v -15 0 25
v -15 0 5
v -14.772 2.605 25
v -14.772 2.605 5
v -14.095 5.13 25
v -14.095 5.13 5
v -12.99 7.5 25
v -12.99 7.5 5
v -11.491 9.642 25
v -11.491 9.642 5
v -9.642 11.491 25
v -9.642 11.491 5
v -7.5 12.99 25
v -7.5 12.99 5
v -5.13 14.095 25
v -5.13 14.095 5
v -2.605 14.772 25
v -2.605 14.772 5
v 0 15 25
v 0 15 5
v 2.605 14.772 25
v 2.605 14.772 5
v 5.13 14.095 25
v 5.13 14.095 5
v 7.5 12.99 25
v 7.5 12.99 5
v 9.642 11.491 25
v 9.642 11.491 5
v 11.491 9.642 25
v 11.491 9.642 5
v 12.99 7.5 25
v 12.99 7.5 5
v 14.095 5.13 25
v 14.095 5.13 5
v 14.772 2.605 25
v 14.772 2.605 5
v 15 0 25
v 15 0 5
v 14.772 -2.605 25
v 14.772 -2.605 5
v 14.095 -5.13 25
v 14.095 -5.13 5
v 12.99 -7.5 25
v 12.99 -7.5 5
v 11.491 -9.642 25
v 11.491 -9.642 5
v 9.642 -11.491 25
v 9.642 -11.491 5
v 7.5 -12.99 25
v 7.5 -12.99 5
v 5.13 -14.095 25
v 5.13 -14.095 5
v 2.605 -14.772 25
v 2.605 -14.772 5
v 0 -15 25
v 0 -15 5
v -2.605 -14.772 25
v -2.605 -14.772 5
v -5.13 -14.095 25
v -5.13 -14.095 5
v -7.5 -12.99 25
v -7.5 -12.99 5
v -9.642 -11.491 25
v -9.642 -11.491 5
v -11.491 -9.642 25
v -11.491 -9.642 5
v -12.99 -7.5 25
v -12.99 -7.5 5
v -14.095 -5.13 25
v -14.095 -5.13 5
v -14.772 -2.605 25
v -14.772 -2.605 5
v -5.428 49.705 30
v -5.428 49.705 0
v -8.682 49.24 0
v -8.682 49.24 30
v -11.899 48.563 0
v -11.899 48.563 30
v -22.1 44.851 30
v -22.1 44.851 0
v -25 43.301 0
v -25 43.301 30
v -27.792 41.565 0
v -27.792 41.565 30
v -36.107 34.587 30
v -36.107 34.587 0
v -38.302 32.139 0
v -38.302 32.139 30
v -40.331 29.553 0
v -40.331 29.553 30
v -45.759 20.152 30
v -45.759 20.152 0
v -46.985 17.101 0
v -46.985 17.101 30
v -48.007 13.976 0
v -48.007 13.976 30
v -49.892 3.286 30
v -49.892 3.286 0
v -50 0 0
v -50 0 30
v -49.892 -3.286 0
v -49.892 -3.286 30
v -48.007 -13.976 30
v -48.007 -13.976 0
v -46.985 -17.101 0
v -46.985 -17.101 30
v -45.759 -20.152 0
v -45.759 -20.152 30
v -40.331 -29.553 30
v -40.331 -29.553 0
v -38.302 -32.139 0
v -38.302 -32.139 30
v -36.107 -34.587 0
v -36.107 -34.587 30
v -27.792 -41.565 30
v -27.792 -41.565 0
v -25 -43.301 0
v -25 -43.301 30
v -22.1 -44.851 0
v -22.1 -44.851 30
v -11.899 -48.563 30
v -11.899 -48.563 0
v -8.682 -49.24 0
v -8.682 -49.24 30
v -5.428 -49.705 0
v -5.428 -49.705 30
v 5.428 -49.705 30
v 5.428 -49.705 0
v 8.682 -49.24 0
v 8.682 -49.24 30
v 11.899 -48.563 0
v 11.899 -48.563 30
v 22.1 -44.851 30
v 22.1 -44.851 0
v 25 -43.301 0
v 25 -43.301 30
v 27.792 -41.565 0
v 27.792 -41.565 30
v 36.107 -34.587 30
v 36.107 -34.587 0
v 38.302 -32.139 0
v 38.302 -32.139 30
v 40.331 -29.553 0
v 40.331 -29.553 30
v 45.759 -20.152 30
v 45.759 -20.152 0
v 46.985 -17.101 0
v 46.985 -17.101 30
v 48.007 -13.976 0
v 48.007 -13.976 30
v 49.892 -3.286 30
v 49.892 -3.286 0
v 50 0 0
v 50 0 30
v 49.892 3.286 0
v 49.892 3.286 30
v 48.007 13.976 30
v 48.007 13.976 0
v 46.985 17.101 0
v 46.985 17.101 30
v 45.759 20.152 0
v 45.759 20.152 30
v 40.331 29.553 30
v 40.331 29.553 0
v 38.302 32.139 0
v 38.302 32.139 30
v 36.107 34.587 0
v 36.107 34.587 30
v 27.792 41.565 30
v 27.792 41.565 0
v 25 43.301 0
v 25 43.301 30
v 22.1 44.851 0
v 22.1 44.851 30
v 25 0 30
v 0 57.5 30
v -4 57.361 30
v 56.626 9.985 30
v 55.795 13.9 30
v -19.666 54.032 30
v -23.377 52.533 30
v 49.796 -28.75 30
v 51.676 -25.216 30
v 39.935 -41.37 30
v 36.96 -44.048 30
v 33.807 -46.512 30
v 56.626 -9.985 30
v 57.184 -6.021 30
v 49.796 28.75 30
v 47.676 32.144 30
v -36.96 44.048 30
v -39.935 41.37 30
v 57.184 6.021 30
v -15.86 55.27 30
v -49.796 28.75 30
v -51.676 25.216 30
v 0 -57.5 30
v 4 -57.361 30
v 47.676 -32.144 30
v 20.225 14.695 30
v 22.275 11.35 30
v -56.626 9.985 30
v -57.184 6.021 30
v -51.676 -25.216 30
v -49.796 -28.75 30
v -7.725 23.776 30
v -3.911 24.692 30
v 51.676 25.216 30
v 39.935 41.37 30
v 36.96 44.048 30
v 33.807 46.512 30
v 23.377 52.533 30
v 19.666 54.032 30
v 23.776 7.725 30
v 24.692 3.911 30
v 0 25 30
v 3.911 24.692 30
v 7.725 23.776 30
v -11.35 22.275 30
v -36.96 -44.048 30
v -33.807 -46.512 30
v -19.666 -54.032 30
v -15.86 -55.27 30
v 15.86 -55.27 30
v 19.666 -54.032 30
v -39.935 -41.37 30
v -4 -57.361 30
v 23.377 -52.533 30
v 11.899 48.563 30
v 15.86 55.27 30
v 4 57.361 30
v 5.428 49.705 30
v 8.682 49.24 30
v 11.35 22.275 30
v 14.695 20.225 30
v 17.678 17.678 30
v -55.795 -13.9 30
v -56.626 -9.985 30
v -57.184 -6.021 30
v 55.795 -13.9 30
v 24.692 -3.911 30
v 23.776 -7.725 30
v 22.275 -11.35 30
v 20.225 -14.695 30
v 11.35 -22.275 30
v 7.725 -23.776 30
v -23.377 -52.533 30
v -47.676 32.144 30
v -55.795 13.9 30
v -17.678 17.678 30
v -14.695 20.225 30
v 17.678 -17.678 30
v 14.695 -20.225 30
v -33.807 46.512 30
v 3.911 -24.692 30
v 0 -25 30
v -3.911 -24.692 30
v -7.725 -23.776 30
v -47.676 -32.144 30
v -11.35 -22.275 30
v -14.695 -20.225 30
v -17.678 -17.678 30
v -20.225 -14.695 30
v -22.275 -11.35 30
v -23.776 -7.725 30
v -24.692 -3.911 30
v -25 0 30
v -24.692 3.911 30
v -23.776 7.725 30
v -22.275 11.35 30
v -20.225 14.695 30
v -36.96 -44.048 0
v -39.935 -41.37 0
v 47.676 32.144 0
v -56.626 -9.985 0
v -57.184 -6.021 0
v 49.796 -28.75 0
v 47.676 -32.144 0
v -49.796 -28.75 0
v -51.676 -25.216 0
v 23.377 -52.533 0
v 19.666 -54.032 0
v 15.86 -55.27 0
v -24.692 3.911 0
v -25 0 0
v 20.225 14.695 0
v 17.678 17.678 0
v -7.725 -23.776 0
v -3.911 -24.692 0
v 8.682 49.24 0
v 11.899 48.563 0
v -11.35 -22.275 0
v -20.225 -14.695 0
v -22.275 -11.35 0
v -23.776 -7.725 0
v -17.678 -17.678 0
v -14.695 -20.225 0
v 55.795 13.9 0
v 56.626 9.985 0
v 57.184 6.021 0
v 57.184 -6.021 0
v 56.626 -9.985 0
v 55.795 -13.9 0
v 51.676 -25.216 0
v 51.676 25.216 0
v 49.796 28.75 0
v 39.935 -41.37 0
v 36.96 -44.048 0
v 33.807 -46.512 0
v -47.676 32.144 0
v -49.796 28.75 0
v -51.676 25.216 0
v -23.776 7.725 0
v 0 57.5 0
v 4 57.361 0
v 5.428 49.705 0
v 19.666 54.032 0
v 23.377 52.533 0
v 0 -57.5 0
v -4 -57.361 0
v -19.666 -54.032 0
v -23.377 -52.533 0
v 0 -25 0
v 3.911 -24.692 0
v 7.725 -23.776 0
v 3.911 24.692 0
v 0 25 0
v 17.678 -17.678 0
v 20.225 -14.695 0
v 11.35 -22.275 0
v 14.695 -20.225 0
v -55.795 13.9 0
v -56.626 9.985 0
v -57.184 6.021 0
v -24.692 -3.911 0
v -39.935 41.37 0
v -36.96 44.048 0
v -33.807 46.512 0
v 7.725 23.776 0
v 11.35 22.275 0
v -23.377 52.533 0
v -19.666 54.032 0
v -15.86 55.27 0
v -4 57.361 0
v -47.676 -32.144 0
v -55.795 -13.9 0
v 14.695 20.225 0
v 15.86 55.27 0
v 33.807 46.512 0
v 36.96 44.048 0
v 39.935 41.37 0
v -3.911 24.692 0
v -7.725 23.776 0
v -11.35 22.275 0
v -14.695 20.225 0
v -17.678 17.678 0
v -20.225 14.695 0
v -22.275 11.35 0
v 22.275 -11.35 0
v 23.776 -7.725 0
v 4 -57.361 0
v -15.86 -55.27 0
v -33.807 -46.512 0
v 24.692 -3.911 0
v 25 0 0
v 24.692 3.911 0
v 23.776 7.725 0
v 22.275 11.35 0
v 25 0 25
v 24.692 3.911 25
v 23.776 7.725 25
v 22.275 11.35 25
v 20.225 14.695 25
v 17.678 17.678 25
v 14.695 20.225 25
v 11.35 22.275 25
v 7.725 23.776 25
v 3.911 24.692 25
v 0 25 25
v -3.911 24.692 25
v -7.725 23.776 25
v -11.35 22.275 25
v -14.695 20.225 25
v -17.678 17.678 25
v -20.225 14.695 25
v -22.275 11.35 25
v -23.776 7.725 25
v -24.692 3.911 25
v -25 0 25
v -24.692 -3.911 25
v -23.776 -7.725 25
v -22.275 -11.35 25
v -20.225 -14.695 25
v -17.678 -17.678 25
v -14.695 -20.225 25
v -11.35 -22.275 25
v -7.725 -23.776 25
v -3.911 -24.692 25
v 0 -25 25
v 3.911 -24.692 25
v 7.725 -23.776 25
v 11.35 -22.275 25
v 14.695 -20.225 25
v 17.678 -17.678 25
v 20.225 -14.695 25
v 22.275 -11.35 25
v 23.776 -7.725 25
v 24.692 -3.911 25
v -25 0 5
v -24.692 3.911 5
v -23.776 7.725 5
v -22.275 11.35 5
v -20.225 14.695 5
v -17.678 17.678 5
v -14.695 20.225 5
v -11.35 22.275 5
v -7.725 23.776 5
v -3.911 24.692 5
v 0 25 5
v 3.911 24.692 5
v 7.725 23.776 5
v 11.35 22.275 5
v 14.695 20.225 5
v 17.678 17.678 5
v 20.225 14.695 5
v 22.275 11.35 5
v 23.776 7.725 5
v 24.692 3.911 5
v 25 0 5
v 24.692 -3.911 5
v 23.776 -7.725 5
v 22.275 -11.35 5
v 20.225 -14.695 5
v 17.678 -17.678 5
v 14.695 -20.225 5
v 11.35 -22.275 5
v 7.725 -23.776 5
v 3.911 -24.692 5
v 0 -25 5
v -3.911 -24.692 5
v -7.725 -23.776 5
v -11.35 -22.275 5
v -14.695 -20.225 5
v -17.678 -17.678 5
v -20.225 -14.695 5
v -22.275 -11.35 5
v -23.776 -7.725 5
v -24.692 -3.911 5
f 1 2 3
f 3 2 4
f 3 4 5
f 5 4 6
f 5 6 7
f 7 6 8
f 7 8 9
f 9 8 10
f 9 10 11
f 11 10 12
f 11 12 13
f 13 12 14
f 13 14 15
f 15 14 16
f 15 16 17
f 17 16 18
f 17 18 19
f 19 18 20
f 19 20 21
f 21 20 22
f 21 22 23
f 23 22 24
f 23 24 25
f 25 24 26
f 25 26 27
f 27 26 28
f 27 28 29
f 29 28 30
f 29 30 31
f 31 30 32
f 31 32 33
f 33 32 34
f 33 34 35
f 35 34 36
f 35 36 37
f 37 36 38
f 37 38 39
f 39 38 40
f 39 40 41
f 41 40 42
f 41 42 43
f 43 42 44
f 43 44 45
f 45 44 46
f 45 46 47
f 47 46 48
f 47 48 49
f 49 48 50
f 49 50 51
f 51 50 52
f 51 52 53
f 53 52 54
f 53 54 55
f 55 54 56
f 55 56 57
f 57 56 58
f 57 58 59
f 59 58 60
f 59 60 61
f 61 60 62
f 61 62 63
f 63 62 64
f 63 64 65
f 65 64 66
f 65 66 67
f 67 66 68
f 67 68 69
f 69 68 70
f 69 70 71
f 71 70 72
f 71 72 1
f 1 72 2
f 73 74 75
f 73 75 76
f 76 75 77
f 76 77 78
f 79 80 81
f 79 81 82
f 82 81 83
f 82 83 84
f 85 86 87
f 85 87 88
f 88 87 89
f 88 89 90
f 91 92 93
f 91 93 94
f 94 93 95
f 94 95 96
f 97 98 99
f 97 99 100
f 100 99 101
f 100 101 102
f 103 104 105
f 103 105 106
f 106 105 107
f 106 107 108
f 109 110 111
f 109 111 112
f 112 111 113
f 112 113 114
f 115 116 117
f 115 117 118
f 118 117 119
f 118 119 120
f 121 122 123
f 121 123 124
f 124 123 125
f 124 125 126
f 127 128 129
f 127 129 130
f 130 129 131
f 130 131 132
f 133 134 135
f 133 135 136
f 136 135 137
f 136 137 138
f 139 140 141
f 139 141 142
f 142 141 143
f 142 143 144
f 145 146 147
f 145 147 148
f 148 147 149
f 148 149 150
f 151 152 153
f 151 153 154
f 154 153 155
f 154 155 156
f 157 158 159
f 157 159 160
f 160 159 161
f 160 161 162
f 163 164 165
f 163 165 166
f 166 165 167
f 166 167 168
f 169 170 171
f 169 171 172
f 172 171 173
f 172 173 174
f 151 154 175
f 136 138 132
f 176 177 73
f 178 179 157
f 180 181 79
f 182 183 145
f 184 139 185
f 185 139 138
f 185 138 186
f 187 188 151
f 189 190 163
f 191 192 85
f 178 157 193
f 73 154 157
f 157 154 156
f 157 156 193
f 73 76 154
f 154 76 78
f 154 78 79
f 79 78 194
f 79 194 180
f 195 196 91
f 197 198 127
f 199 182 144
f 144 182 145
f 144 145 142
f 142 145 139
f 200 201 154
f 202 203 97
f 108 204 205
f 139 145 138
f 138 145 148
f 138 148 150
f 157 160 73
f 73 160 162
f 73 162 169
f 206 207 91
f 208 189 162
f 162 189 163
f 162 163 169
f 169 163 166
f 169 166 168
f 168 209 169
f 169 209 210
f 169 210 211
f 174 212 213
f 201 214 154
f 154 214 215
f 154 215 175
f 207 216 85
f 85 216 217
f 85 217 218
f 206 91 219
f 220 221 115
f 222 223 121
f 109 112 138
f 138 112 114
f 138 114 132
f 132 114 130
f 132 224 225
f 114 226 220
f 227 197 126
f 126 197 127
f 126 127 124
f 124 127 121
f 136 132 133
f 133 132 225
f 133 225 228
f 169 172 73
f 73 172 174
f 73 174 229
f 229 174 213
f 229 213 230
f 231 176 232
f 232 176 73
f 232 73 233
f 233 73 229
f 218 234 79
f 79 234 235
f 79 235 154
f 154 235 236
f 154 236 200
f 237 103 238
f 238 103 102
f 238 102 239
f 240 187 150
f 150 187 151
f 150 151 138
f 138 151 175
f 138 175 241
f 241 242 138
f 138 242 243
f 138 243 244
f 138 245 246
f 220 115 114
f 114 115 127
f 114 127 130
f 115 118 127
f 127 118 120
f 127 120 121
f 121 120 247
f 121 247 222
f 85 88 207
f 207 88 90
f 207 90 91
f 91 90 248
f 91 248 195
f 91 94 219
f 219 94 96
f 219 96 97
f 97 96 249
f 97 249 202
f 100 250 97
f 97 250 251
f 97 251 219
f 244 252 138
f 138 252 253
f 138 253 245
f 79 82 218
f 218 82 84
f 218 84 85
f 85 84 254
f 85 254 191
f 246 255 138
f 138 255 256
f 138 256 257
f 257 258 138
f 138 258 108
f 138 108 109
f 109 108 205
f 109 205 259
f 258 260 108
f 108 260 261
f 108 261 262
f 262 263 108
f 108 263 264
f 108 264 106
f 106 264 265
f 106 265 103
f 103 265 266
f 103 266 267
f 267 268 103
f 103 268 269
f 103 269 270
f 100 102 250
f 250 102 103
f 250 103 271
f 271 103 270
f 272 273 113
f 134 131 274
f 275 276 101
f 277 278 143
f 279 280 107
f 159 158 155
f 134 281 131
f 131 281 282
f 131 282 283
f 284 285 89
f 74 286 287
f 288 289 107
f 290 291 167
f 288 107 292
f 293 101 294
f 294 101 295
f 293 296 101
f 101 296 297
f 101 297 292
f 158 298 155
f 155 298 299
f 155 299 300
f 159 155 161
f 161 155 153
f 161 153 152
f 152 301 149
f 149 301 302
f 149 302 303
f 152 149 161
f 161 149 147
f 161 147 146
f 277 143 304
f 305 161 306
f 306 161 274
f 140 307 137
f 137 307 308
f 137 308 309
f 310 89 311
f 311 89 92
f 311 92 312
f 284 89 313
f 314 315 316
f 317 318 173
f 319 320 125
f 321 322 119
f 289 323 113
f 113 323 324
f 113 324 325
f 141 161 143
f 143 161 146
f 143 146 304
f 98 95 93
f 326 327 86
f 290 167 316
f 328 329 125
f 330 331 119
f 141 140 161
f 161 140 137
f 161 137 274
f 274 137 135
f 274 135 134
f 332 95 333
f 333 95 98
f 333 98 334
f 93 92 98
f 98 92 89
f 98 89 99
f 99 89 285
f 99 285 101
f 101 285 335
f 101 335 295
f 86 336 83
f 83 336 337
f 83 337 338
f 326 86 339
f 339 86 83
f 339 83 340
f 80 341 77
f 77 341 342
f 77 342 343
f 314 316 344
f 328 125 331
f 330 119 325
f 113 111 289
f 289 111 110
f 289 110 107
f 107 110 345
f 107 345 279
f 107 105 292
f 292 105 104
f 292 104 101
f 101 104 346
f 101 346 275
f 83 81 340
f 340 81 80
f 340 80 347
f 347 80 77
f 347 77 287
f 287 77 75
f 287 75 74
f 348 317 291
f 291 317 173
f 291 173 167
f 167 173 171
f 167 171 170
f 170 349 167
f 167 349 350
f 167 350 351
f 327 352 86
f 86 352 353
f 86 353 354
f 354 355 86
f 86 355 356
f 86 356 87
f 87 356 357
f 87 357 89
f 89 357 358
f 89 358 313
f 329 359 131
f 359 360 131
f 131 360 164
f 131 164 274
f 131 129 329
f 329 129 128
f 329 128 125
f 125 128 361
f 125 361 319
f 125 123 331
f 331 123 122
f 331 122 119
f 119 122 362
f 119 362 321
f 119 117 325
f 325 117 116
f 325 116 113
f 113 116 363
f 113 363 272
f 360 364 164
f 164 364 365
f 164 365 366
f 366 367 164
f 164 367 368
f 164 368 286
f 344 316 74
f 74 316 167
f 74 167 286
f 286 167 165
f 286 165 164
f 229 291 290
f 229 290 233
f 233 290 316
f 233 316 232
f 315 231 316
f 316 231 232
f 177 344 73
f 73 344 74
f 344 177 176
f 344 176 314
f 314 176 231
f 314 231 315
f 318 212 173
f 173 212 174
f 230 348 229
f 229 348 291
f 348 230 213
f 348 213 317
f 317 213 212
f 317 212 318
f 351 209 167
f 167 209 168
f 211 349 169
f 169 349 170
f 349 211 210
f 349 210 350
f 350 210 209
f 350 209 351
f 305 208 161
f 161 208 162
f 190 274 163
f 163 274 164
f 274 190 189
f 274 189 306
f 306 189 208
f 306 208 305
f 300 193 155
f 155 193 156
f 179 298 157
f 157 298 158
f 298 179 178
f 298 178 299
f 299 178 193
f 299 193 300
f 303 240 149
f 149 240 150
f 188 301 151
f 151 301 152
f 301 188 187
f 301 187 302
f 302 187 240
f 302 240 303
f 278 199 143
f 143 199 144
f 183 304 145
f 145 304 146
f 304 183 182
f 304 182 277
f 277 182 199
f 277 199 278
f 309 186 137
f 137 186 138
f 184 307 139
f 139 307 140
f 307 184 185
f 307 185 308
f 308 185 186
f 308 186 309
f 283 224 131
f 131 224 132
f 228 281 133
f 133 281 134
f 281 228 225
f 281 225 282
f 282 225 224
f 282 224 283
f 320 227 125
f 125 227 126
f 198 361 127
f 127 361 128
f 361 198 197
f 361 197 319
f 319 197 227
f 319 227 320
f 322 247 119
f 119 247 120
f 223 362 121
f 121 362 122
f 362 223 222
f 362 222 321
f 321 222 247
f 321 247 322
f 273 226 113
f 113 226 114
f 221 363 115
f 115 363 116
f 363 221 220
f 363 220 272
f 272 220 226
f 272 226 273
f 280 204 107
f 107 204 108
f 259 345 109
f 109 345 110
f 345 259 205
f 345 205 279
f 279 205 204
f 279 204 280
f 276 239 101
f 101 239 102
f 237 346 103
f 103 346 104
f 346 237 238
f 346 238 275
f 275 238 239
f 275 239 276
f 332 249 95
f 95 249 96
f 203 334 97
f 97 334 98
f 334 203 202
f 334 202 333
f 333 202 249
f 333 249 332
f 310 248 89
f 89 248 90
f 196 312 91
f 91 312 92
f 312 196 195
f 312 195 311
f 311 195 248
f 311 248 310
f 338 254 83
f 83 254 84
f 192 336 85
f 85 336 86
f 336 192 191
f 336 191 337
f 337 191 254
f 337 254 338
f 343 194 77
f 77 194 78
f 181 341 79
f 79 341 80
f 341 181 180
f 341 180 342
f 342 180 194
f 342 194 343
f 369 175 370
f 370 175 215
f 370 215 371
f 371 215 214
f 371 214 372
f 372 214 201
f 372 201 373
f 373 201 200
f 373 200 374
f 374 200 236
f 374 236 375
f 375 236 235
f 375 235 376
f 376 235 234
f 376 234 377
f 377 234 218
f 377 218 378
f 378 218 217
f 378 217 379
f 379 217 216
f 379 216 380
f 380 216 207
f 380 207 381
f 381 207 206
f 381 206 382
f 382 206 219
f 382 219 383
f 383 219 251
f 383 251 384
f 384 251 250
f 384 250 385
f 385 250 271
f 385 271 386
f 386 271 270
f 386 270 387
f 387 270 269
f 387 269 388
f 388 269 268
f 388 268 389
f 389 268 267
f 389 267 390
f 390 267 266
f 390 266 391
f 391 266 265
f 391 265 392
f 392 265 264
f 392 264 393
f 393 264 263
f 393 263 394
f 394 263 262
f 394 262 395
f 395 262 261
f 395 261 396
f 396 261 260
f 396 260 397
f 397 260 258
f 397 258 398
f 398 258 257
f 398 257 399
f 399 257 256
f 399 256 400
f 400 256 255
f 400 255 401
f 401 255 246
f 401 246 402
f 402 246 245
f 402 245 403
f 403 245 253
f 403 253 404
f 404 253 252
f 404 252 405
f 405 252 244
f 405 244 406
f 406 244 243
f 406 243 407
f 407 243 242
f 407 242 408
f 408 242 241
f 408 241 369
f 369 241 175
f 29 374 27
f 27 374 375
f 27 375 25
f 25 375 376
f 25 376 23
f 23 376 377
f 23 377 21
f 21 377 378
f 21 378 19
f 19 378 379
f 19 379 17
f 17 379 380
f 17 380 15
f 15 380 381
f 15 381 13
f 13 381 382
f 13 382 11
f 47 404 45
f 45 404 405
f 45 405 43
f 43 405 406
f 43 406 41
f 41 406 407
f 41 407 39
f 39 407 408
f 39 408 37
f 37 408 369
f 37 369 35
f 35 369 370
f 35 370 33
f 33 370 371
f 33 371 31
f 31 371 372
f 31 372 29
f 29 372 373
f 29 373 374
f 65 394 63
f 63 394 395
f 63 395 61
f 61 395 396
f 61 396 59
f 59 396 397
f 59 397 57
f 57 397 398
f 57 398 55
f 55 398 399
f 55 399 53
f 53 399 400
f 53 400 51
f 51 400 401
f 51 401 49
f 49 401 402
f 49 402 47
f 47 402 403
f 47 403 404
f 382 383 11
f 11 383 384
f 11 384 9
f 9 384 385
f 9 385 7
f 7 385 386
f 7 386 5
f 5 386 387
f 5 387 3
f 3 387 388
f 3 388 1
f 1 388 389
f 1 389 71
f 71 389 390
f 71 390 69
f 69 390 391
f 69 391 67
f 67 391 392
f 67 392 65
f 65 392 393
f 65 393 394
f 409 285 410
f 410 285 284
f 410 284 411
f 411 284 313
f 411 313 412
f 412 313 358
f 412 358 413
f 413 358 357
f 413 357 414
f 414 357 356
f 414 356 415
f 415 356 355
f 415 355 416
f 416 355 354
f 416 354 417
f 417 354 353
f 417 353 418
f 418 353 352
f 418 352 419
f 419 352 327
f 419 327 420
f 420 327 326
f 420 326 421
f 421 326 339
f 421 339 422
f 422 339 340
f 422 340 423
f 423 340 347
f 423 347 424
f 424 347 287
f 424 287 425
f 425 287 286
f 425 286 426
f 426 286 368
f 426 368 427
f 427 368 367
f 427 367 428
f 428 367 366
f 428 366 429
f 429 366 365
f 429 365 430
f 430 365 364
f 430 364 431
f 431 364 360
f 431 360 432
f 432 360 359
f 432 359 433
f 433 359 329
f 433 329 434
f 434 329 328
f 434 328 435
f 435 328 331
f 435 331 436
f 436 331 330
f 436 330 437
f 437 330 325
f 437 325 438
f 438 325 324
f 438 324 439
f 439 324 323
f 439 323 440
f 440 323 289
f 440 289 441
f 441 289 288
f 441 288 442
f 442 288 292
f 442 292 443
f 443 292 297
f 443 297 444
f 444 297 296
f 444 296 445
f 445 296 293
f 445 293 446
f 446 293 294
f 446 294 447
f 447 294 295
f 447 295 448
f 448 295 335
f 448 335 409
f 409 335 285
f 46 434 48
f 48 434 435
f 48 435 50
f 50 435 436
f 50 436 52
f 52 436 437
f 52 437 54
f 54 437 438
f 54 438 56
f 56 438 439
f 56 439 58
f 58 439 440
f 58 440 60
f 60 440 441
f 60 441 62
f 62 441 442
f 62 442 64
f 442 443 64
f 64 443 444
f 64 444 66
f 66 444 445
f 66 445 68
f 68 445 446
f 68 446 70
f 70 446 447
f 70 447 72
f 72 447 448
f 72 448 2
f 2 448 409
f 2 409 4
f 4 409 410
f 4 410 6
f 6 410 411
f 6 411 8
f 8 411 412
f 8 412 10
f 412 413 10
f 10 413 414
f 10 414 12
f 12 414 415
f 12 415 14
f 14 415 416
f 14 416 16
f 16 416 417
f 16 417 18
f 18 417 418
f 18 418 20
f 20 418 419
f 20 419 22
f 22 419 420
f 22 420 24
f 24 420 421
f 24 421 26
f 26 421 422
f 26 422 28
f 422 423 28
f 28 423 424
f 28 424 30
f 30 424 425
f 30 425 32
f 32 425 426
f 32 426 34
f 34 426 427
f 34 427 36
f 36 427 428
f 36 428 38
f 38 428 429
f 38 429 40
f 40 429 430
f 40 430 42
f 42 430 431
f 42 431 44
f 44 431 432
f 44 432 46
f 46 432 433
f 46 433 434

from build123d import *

# Parameters (mm, degrees)
SKIZZE1_R                       = 50
SKIZZE1_R_2                     = 15
AUFSATZ_LINEAR_AUSTRAGEN1_DEPTH = 30
AUFSATZ_LINEAR_AUSTRAGEN2_DEPTH = 30
KREISMUSTER1_COUNT              = 18
SKIZZE3_R                       = 25
SCHNITT_LINEAR_AUSTRAGEN1_DEPTH = 5
SCHNITT_LINEAR_START            = -5
SKIZZE4_R                       = 25
SCHNITT_LINEAR_AUSTRAGEN2_DEPTH = 5


with BuildPart() as part:
    # Skizze1 → Aufsatz-Linear austragen1 (new body)
    with BuildSketch(Plane.XY):
        Circle(SKIZZE1_R)
        Circle(SKIZZE1_R_2, mode=Mode.SUBTRACT)
    extrude(amount=AUFSATZ_LINEAR_AUSTRAGEN1_DEPTH)

    # Skizze2 → Aufsatz-Linear austragen2 (add)
    with BuildSketch(Plane.XY.offset(30)):
        with BuildLine():
            Line((6, 46.636185446), (-6, 46.636185446))
            Line((-6, 46.636185446), (-4, 57.360700833))
            ThreePointArc((-4, 57.360700833), (0, 57.5), (4, 57.360700833))
            Line((4, 57.360700833), (6, 46.636185446))
        make_face()
    aufsatz_linear_austragen2 = extrude(amount=-AUFSATZ_LINEAR_AUSTRAGEN2_DEPTH)

    # Kreismuster1: Aufsatz-Linear austragen2 ×18 about axis
    kreismuster1_axis = Axis((0, 0, 30), (0, 0, -1))
    for i in range(1, KREISMUSTER1_COUNT):
        add(aufsatz_linear_austragen2.rotate(kreismuster1_axis, i * 360 / KREISMUSTER1_COUNT))

    # Skizze3 → Schnitt-Linear austragen1 (cut)
    with BuildSketch(Plane.XY.offset(30)):
        Circle(SKIZZE3_R)
    extrude(amount=-SCHNITT_LINEAR_AUSTRAGEN1_DEPTH, mode=Mode.SUBTRACT)

    # Skizze4 → Schnitt-Linear austragen2 (cut)
    with BuildSketch(Plane(origin=(0, 0, 0), x_dir=(-1, 0, 0), z_dir=(0, 0, -1)).offset(SCHNITT_LINEAR_START)):
        Circle(SKIZZE4_R)
    extrude(amount=SCHNITT_LINEAR_AUSTRAGEN2_DEPTH, mode=Mode.SUBTRACT)


solid = part.part
